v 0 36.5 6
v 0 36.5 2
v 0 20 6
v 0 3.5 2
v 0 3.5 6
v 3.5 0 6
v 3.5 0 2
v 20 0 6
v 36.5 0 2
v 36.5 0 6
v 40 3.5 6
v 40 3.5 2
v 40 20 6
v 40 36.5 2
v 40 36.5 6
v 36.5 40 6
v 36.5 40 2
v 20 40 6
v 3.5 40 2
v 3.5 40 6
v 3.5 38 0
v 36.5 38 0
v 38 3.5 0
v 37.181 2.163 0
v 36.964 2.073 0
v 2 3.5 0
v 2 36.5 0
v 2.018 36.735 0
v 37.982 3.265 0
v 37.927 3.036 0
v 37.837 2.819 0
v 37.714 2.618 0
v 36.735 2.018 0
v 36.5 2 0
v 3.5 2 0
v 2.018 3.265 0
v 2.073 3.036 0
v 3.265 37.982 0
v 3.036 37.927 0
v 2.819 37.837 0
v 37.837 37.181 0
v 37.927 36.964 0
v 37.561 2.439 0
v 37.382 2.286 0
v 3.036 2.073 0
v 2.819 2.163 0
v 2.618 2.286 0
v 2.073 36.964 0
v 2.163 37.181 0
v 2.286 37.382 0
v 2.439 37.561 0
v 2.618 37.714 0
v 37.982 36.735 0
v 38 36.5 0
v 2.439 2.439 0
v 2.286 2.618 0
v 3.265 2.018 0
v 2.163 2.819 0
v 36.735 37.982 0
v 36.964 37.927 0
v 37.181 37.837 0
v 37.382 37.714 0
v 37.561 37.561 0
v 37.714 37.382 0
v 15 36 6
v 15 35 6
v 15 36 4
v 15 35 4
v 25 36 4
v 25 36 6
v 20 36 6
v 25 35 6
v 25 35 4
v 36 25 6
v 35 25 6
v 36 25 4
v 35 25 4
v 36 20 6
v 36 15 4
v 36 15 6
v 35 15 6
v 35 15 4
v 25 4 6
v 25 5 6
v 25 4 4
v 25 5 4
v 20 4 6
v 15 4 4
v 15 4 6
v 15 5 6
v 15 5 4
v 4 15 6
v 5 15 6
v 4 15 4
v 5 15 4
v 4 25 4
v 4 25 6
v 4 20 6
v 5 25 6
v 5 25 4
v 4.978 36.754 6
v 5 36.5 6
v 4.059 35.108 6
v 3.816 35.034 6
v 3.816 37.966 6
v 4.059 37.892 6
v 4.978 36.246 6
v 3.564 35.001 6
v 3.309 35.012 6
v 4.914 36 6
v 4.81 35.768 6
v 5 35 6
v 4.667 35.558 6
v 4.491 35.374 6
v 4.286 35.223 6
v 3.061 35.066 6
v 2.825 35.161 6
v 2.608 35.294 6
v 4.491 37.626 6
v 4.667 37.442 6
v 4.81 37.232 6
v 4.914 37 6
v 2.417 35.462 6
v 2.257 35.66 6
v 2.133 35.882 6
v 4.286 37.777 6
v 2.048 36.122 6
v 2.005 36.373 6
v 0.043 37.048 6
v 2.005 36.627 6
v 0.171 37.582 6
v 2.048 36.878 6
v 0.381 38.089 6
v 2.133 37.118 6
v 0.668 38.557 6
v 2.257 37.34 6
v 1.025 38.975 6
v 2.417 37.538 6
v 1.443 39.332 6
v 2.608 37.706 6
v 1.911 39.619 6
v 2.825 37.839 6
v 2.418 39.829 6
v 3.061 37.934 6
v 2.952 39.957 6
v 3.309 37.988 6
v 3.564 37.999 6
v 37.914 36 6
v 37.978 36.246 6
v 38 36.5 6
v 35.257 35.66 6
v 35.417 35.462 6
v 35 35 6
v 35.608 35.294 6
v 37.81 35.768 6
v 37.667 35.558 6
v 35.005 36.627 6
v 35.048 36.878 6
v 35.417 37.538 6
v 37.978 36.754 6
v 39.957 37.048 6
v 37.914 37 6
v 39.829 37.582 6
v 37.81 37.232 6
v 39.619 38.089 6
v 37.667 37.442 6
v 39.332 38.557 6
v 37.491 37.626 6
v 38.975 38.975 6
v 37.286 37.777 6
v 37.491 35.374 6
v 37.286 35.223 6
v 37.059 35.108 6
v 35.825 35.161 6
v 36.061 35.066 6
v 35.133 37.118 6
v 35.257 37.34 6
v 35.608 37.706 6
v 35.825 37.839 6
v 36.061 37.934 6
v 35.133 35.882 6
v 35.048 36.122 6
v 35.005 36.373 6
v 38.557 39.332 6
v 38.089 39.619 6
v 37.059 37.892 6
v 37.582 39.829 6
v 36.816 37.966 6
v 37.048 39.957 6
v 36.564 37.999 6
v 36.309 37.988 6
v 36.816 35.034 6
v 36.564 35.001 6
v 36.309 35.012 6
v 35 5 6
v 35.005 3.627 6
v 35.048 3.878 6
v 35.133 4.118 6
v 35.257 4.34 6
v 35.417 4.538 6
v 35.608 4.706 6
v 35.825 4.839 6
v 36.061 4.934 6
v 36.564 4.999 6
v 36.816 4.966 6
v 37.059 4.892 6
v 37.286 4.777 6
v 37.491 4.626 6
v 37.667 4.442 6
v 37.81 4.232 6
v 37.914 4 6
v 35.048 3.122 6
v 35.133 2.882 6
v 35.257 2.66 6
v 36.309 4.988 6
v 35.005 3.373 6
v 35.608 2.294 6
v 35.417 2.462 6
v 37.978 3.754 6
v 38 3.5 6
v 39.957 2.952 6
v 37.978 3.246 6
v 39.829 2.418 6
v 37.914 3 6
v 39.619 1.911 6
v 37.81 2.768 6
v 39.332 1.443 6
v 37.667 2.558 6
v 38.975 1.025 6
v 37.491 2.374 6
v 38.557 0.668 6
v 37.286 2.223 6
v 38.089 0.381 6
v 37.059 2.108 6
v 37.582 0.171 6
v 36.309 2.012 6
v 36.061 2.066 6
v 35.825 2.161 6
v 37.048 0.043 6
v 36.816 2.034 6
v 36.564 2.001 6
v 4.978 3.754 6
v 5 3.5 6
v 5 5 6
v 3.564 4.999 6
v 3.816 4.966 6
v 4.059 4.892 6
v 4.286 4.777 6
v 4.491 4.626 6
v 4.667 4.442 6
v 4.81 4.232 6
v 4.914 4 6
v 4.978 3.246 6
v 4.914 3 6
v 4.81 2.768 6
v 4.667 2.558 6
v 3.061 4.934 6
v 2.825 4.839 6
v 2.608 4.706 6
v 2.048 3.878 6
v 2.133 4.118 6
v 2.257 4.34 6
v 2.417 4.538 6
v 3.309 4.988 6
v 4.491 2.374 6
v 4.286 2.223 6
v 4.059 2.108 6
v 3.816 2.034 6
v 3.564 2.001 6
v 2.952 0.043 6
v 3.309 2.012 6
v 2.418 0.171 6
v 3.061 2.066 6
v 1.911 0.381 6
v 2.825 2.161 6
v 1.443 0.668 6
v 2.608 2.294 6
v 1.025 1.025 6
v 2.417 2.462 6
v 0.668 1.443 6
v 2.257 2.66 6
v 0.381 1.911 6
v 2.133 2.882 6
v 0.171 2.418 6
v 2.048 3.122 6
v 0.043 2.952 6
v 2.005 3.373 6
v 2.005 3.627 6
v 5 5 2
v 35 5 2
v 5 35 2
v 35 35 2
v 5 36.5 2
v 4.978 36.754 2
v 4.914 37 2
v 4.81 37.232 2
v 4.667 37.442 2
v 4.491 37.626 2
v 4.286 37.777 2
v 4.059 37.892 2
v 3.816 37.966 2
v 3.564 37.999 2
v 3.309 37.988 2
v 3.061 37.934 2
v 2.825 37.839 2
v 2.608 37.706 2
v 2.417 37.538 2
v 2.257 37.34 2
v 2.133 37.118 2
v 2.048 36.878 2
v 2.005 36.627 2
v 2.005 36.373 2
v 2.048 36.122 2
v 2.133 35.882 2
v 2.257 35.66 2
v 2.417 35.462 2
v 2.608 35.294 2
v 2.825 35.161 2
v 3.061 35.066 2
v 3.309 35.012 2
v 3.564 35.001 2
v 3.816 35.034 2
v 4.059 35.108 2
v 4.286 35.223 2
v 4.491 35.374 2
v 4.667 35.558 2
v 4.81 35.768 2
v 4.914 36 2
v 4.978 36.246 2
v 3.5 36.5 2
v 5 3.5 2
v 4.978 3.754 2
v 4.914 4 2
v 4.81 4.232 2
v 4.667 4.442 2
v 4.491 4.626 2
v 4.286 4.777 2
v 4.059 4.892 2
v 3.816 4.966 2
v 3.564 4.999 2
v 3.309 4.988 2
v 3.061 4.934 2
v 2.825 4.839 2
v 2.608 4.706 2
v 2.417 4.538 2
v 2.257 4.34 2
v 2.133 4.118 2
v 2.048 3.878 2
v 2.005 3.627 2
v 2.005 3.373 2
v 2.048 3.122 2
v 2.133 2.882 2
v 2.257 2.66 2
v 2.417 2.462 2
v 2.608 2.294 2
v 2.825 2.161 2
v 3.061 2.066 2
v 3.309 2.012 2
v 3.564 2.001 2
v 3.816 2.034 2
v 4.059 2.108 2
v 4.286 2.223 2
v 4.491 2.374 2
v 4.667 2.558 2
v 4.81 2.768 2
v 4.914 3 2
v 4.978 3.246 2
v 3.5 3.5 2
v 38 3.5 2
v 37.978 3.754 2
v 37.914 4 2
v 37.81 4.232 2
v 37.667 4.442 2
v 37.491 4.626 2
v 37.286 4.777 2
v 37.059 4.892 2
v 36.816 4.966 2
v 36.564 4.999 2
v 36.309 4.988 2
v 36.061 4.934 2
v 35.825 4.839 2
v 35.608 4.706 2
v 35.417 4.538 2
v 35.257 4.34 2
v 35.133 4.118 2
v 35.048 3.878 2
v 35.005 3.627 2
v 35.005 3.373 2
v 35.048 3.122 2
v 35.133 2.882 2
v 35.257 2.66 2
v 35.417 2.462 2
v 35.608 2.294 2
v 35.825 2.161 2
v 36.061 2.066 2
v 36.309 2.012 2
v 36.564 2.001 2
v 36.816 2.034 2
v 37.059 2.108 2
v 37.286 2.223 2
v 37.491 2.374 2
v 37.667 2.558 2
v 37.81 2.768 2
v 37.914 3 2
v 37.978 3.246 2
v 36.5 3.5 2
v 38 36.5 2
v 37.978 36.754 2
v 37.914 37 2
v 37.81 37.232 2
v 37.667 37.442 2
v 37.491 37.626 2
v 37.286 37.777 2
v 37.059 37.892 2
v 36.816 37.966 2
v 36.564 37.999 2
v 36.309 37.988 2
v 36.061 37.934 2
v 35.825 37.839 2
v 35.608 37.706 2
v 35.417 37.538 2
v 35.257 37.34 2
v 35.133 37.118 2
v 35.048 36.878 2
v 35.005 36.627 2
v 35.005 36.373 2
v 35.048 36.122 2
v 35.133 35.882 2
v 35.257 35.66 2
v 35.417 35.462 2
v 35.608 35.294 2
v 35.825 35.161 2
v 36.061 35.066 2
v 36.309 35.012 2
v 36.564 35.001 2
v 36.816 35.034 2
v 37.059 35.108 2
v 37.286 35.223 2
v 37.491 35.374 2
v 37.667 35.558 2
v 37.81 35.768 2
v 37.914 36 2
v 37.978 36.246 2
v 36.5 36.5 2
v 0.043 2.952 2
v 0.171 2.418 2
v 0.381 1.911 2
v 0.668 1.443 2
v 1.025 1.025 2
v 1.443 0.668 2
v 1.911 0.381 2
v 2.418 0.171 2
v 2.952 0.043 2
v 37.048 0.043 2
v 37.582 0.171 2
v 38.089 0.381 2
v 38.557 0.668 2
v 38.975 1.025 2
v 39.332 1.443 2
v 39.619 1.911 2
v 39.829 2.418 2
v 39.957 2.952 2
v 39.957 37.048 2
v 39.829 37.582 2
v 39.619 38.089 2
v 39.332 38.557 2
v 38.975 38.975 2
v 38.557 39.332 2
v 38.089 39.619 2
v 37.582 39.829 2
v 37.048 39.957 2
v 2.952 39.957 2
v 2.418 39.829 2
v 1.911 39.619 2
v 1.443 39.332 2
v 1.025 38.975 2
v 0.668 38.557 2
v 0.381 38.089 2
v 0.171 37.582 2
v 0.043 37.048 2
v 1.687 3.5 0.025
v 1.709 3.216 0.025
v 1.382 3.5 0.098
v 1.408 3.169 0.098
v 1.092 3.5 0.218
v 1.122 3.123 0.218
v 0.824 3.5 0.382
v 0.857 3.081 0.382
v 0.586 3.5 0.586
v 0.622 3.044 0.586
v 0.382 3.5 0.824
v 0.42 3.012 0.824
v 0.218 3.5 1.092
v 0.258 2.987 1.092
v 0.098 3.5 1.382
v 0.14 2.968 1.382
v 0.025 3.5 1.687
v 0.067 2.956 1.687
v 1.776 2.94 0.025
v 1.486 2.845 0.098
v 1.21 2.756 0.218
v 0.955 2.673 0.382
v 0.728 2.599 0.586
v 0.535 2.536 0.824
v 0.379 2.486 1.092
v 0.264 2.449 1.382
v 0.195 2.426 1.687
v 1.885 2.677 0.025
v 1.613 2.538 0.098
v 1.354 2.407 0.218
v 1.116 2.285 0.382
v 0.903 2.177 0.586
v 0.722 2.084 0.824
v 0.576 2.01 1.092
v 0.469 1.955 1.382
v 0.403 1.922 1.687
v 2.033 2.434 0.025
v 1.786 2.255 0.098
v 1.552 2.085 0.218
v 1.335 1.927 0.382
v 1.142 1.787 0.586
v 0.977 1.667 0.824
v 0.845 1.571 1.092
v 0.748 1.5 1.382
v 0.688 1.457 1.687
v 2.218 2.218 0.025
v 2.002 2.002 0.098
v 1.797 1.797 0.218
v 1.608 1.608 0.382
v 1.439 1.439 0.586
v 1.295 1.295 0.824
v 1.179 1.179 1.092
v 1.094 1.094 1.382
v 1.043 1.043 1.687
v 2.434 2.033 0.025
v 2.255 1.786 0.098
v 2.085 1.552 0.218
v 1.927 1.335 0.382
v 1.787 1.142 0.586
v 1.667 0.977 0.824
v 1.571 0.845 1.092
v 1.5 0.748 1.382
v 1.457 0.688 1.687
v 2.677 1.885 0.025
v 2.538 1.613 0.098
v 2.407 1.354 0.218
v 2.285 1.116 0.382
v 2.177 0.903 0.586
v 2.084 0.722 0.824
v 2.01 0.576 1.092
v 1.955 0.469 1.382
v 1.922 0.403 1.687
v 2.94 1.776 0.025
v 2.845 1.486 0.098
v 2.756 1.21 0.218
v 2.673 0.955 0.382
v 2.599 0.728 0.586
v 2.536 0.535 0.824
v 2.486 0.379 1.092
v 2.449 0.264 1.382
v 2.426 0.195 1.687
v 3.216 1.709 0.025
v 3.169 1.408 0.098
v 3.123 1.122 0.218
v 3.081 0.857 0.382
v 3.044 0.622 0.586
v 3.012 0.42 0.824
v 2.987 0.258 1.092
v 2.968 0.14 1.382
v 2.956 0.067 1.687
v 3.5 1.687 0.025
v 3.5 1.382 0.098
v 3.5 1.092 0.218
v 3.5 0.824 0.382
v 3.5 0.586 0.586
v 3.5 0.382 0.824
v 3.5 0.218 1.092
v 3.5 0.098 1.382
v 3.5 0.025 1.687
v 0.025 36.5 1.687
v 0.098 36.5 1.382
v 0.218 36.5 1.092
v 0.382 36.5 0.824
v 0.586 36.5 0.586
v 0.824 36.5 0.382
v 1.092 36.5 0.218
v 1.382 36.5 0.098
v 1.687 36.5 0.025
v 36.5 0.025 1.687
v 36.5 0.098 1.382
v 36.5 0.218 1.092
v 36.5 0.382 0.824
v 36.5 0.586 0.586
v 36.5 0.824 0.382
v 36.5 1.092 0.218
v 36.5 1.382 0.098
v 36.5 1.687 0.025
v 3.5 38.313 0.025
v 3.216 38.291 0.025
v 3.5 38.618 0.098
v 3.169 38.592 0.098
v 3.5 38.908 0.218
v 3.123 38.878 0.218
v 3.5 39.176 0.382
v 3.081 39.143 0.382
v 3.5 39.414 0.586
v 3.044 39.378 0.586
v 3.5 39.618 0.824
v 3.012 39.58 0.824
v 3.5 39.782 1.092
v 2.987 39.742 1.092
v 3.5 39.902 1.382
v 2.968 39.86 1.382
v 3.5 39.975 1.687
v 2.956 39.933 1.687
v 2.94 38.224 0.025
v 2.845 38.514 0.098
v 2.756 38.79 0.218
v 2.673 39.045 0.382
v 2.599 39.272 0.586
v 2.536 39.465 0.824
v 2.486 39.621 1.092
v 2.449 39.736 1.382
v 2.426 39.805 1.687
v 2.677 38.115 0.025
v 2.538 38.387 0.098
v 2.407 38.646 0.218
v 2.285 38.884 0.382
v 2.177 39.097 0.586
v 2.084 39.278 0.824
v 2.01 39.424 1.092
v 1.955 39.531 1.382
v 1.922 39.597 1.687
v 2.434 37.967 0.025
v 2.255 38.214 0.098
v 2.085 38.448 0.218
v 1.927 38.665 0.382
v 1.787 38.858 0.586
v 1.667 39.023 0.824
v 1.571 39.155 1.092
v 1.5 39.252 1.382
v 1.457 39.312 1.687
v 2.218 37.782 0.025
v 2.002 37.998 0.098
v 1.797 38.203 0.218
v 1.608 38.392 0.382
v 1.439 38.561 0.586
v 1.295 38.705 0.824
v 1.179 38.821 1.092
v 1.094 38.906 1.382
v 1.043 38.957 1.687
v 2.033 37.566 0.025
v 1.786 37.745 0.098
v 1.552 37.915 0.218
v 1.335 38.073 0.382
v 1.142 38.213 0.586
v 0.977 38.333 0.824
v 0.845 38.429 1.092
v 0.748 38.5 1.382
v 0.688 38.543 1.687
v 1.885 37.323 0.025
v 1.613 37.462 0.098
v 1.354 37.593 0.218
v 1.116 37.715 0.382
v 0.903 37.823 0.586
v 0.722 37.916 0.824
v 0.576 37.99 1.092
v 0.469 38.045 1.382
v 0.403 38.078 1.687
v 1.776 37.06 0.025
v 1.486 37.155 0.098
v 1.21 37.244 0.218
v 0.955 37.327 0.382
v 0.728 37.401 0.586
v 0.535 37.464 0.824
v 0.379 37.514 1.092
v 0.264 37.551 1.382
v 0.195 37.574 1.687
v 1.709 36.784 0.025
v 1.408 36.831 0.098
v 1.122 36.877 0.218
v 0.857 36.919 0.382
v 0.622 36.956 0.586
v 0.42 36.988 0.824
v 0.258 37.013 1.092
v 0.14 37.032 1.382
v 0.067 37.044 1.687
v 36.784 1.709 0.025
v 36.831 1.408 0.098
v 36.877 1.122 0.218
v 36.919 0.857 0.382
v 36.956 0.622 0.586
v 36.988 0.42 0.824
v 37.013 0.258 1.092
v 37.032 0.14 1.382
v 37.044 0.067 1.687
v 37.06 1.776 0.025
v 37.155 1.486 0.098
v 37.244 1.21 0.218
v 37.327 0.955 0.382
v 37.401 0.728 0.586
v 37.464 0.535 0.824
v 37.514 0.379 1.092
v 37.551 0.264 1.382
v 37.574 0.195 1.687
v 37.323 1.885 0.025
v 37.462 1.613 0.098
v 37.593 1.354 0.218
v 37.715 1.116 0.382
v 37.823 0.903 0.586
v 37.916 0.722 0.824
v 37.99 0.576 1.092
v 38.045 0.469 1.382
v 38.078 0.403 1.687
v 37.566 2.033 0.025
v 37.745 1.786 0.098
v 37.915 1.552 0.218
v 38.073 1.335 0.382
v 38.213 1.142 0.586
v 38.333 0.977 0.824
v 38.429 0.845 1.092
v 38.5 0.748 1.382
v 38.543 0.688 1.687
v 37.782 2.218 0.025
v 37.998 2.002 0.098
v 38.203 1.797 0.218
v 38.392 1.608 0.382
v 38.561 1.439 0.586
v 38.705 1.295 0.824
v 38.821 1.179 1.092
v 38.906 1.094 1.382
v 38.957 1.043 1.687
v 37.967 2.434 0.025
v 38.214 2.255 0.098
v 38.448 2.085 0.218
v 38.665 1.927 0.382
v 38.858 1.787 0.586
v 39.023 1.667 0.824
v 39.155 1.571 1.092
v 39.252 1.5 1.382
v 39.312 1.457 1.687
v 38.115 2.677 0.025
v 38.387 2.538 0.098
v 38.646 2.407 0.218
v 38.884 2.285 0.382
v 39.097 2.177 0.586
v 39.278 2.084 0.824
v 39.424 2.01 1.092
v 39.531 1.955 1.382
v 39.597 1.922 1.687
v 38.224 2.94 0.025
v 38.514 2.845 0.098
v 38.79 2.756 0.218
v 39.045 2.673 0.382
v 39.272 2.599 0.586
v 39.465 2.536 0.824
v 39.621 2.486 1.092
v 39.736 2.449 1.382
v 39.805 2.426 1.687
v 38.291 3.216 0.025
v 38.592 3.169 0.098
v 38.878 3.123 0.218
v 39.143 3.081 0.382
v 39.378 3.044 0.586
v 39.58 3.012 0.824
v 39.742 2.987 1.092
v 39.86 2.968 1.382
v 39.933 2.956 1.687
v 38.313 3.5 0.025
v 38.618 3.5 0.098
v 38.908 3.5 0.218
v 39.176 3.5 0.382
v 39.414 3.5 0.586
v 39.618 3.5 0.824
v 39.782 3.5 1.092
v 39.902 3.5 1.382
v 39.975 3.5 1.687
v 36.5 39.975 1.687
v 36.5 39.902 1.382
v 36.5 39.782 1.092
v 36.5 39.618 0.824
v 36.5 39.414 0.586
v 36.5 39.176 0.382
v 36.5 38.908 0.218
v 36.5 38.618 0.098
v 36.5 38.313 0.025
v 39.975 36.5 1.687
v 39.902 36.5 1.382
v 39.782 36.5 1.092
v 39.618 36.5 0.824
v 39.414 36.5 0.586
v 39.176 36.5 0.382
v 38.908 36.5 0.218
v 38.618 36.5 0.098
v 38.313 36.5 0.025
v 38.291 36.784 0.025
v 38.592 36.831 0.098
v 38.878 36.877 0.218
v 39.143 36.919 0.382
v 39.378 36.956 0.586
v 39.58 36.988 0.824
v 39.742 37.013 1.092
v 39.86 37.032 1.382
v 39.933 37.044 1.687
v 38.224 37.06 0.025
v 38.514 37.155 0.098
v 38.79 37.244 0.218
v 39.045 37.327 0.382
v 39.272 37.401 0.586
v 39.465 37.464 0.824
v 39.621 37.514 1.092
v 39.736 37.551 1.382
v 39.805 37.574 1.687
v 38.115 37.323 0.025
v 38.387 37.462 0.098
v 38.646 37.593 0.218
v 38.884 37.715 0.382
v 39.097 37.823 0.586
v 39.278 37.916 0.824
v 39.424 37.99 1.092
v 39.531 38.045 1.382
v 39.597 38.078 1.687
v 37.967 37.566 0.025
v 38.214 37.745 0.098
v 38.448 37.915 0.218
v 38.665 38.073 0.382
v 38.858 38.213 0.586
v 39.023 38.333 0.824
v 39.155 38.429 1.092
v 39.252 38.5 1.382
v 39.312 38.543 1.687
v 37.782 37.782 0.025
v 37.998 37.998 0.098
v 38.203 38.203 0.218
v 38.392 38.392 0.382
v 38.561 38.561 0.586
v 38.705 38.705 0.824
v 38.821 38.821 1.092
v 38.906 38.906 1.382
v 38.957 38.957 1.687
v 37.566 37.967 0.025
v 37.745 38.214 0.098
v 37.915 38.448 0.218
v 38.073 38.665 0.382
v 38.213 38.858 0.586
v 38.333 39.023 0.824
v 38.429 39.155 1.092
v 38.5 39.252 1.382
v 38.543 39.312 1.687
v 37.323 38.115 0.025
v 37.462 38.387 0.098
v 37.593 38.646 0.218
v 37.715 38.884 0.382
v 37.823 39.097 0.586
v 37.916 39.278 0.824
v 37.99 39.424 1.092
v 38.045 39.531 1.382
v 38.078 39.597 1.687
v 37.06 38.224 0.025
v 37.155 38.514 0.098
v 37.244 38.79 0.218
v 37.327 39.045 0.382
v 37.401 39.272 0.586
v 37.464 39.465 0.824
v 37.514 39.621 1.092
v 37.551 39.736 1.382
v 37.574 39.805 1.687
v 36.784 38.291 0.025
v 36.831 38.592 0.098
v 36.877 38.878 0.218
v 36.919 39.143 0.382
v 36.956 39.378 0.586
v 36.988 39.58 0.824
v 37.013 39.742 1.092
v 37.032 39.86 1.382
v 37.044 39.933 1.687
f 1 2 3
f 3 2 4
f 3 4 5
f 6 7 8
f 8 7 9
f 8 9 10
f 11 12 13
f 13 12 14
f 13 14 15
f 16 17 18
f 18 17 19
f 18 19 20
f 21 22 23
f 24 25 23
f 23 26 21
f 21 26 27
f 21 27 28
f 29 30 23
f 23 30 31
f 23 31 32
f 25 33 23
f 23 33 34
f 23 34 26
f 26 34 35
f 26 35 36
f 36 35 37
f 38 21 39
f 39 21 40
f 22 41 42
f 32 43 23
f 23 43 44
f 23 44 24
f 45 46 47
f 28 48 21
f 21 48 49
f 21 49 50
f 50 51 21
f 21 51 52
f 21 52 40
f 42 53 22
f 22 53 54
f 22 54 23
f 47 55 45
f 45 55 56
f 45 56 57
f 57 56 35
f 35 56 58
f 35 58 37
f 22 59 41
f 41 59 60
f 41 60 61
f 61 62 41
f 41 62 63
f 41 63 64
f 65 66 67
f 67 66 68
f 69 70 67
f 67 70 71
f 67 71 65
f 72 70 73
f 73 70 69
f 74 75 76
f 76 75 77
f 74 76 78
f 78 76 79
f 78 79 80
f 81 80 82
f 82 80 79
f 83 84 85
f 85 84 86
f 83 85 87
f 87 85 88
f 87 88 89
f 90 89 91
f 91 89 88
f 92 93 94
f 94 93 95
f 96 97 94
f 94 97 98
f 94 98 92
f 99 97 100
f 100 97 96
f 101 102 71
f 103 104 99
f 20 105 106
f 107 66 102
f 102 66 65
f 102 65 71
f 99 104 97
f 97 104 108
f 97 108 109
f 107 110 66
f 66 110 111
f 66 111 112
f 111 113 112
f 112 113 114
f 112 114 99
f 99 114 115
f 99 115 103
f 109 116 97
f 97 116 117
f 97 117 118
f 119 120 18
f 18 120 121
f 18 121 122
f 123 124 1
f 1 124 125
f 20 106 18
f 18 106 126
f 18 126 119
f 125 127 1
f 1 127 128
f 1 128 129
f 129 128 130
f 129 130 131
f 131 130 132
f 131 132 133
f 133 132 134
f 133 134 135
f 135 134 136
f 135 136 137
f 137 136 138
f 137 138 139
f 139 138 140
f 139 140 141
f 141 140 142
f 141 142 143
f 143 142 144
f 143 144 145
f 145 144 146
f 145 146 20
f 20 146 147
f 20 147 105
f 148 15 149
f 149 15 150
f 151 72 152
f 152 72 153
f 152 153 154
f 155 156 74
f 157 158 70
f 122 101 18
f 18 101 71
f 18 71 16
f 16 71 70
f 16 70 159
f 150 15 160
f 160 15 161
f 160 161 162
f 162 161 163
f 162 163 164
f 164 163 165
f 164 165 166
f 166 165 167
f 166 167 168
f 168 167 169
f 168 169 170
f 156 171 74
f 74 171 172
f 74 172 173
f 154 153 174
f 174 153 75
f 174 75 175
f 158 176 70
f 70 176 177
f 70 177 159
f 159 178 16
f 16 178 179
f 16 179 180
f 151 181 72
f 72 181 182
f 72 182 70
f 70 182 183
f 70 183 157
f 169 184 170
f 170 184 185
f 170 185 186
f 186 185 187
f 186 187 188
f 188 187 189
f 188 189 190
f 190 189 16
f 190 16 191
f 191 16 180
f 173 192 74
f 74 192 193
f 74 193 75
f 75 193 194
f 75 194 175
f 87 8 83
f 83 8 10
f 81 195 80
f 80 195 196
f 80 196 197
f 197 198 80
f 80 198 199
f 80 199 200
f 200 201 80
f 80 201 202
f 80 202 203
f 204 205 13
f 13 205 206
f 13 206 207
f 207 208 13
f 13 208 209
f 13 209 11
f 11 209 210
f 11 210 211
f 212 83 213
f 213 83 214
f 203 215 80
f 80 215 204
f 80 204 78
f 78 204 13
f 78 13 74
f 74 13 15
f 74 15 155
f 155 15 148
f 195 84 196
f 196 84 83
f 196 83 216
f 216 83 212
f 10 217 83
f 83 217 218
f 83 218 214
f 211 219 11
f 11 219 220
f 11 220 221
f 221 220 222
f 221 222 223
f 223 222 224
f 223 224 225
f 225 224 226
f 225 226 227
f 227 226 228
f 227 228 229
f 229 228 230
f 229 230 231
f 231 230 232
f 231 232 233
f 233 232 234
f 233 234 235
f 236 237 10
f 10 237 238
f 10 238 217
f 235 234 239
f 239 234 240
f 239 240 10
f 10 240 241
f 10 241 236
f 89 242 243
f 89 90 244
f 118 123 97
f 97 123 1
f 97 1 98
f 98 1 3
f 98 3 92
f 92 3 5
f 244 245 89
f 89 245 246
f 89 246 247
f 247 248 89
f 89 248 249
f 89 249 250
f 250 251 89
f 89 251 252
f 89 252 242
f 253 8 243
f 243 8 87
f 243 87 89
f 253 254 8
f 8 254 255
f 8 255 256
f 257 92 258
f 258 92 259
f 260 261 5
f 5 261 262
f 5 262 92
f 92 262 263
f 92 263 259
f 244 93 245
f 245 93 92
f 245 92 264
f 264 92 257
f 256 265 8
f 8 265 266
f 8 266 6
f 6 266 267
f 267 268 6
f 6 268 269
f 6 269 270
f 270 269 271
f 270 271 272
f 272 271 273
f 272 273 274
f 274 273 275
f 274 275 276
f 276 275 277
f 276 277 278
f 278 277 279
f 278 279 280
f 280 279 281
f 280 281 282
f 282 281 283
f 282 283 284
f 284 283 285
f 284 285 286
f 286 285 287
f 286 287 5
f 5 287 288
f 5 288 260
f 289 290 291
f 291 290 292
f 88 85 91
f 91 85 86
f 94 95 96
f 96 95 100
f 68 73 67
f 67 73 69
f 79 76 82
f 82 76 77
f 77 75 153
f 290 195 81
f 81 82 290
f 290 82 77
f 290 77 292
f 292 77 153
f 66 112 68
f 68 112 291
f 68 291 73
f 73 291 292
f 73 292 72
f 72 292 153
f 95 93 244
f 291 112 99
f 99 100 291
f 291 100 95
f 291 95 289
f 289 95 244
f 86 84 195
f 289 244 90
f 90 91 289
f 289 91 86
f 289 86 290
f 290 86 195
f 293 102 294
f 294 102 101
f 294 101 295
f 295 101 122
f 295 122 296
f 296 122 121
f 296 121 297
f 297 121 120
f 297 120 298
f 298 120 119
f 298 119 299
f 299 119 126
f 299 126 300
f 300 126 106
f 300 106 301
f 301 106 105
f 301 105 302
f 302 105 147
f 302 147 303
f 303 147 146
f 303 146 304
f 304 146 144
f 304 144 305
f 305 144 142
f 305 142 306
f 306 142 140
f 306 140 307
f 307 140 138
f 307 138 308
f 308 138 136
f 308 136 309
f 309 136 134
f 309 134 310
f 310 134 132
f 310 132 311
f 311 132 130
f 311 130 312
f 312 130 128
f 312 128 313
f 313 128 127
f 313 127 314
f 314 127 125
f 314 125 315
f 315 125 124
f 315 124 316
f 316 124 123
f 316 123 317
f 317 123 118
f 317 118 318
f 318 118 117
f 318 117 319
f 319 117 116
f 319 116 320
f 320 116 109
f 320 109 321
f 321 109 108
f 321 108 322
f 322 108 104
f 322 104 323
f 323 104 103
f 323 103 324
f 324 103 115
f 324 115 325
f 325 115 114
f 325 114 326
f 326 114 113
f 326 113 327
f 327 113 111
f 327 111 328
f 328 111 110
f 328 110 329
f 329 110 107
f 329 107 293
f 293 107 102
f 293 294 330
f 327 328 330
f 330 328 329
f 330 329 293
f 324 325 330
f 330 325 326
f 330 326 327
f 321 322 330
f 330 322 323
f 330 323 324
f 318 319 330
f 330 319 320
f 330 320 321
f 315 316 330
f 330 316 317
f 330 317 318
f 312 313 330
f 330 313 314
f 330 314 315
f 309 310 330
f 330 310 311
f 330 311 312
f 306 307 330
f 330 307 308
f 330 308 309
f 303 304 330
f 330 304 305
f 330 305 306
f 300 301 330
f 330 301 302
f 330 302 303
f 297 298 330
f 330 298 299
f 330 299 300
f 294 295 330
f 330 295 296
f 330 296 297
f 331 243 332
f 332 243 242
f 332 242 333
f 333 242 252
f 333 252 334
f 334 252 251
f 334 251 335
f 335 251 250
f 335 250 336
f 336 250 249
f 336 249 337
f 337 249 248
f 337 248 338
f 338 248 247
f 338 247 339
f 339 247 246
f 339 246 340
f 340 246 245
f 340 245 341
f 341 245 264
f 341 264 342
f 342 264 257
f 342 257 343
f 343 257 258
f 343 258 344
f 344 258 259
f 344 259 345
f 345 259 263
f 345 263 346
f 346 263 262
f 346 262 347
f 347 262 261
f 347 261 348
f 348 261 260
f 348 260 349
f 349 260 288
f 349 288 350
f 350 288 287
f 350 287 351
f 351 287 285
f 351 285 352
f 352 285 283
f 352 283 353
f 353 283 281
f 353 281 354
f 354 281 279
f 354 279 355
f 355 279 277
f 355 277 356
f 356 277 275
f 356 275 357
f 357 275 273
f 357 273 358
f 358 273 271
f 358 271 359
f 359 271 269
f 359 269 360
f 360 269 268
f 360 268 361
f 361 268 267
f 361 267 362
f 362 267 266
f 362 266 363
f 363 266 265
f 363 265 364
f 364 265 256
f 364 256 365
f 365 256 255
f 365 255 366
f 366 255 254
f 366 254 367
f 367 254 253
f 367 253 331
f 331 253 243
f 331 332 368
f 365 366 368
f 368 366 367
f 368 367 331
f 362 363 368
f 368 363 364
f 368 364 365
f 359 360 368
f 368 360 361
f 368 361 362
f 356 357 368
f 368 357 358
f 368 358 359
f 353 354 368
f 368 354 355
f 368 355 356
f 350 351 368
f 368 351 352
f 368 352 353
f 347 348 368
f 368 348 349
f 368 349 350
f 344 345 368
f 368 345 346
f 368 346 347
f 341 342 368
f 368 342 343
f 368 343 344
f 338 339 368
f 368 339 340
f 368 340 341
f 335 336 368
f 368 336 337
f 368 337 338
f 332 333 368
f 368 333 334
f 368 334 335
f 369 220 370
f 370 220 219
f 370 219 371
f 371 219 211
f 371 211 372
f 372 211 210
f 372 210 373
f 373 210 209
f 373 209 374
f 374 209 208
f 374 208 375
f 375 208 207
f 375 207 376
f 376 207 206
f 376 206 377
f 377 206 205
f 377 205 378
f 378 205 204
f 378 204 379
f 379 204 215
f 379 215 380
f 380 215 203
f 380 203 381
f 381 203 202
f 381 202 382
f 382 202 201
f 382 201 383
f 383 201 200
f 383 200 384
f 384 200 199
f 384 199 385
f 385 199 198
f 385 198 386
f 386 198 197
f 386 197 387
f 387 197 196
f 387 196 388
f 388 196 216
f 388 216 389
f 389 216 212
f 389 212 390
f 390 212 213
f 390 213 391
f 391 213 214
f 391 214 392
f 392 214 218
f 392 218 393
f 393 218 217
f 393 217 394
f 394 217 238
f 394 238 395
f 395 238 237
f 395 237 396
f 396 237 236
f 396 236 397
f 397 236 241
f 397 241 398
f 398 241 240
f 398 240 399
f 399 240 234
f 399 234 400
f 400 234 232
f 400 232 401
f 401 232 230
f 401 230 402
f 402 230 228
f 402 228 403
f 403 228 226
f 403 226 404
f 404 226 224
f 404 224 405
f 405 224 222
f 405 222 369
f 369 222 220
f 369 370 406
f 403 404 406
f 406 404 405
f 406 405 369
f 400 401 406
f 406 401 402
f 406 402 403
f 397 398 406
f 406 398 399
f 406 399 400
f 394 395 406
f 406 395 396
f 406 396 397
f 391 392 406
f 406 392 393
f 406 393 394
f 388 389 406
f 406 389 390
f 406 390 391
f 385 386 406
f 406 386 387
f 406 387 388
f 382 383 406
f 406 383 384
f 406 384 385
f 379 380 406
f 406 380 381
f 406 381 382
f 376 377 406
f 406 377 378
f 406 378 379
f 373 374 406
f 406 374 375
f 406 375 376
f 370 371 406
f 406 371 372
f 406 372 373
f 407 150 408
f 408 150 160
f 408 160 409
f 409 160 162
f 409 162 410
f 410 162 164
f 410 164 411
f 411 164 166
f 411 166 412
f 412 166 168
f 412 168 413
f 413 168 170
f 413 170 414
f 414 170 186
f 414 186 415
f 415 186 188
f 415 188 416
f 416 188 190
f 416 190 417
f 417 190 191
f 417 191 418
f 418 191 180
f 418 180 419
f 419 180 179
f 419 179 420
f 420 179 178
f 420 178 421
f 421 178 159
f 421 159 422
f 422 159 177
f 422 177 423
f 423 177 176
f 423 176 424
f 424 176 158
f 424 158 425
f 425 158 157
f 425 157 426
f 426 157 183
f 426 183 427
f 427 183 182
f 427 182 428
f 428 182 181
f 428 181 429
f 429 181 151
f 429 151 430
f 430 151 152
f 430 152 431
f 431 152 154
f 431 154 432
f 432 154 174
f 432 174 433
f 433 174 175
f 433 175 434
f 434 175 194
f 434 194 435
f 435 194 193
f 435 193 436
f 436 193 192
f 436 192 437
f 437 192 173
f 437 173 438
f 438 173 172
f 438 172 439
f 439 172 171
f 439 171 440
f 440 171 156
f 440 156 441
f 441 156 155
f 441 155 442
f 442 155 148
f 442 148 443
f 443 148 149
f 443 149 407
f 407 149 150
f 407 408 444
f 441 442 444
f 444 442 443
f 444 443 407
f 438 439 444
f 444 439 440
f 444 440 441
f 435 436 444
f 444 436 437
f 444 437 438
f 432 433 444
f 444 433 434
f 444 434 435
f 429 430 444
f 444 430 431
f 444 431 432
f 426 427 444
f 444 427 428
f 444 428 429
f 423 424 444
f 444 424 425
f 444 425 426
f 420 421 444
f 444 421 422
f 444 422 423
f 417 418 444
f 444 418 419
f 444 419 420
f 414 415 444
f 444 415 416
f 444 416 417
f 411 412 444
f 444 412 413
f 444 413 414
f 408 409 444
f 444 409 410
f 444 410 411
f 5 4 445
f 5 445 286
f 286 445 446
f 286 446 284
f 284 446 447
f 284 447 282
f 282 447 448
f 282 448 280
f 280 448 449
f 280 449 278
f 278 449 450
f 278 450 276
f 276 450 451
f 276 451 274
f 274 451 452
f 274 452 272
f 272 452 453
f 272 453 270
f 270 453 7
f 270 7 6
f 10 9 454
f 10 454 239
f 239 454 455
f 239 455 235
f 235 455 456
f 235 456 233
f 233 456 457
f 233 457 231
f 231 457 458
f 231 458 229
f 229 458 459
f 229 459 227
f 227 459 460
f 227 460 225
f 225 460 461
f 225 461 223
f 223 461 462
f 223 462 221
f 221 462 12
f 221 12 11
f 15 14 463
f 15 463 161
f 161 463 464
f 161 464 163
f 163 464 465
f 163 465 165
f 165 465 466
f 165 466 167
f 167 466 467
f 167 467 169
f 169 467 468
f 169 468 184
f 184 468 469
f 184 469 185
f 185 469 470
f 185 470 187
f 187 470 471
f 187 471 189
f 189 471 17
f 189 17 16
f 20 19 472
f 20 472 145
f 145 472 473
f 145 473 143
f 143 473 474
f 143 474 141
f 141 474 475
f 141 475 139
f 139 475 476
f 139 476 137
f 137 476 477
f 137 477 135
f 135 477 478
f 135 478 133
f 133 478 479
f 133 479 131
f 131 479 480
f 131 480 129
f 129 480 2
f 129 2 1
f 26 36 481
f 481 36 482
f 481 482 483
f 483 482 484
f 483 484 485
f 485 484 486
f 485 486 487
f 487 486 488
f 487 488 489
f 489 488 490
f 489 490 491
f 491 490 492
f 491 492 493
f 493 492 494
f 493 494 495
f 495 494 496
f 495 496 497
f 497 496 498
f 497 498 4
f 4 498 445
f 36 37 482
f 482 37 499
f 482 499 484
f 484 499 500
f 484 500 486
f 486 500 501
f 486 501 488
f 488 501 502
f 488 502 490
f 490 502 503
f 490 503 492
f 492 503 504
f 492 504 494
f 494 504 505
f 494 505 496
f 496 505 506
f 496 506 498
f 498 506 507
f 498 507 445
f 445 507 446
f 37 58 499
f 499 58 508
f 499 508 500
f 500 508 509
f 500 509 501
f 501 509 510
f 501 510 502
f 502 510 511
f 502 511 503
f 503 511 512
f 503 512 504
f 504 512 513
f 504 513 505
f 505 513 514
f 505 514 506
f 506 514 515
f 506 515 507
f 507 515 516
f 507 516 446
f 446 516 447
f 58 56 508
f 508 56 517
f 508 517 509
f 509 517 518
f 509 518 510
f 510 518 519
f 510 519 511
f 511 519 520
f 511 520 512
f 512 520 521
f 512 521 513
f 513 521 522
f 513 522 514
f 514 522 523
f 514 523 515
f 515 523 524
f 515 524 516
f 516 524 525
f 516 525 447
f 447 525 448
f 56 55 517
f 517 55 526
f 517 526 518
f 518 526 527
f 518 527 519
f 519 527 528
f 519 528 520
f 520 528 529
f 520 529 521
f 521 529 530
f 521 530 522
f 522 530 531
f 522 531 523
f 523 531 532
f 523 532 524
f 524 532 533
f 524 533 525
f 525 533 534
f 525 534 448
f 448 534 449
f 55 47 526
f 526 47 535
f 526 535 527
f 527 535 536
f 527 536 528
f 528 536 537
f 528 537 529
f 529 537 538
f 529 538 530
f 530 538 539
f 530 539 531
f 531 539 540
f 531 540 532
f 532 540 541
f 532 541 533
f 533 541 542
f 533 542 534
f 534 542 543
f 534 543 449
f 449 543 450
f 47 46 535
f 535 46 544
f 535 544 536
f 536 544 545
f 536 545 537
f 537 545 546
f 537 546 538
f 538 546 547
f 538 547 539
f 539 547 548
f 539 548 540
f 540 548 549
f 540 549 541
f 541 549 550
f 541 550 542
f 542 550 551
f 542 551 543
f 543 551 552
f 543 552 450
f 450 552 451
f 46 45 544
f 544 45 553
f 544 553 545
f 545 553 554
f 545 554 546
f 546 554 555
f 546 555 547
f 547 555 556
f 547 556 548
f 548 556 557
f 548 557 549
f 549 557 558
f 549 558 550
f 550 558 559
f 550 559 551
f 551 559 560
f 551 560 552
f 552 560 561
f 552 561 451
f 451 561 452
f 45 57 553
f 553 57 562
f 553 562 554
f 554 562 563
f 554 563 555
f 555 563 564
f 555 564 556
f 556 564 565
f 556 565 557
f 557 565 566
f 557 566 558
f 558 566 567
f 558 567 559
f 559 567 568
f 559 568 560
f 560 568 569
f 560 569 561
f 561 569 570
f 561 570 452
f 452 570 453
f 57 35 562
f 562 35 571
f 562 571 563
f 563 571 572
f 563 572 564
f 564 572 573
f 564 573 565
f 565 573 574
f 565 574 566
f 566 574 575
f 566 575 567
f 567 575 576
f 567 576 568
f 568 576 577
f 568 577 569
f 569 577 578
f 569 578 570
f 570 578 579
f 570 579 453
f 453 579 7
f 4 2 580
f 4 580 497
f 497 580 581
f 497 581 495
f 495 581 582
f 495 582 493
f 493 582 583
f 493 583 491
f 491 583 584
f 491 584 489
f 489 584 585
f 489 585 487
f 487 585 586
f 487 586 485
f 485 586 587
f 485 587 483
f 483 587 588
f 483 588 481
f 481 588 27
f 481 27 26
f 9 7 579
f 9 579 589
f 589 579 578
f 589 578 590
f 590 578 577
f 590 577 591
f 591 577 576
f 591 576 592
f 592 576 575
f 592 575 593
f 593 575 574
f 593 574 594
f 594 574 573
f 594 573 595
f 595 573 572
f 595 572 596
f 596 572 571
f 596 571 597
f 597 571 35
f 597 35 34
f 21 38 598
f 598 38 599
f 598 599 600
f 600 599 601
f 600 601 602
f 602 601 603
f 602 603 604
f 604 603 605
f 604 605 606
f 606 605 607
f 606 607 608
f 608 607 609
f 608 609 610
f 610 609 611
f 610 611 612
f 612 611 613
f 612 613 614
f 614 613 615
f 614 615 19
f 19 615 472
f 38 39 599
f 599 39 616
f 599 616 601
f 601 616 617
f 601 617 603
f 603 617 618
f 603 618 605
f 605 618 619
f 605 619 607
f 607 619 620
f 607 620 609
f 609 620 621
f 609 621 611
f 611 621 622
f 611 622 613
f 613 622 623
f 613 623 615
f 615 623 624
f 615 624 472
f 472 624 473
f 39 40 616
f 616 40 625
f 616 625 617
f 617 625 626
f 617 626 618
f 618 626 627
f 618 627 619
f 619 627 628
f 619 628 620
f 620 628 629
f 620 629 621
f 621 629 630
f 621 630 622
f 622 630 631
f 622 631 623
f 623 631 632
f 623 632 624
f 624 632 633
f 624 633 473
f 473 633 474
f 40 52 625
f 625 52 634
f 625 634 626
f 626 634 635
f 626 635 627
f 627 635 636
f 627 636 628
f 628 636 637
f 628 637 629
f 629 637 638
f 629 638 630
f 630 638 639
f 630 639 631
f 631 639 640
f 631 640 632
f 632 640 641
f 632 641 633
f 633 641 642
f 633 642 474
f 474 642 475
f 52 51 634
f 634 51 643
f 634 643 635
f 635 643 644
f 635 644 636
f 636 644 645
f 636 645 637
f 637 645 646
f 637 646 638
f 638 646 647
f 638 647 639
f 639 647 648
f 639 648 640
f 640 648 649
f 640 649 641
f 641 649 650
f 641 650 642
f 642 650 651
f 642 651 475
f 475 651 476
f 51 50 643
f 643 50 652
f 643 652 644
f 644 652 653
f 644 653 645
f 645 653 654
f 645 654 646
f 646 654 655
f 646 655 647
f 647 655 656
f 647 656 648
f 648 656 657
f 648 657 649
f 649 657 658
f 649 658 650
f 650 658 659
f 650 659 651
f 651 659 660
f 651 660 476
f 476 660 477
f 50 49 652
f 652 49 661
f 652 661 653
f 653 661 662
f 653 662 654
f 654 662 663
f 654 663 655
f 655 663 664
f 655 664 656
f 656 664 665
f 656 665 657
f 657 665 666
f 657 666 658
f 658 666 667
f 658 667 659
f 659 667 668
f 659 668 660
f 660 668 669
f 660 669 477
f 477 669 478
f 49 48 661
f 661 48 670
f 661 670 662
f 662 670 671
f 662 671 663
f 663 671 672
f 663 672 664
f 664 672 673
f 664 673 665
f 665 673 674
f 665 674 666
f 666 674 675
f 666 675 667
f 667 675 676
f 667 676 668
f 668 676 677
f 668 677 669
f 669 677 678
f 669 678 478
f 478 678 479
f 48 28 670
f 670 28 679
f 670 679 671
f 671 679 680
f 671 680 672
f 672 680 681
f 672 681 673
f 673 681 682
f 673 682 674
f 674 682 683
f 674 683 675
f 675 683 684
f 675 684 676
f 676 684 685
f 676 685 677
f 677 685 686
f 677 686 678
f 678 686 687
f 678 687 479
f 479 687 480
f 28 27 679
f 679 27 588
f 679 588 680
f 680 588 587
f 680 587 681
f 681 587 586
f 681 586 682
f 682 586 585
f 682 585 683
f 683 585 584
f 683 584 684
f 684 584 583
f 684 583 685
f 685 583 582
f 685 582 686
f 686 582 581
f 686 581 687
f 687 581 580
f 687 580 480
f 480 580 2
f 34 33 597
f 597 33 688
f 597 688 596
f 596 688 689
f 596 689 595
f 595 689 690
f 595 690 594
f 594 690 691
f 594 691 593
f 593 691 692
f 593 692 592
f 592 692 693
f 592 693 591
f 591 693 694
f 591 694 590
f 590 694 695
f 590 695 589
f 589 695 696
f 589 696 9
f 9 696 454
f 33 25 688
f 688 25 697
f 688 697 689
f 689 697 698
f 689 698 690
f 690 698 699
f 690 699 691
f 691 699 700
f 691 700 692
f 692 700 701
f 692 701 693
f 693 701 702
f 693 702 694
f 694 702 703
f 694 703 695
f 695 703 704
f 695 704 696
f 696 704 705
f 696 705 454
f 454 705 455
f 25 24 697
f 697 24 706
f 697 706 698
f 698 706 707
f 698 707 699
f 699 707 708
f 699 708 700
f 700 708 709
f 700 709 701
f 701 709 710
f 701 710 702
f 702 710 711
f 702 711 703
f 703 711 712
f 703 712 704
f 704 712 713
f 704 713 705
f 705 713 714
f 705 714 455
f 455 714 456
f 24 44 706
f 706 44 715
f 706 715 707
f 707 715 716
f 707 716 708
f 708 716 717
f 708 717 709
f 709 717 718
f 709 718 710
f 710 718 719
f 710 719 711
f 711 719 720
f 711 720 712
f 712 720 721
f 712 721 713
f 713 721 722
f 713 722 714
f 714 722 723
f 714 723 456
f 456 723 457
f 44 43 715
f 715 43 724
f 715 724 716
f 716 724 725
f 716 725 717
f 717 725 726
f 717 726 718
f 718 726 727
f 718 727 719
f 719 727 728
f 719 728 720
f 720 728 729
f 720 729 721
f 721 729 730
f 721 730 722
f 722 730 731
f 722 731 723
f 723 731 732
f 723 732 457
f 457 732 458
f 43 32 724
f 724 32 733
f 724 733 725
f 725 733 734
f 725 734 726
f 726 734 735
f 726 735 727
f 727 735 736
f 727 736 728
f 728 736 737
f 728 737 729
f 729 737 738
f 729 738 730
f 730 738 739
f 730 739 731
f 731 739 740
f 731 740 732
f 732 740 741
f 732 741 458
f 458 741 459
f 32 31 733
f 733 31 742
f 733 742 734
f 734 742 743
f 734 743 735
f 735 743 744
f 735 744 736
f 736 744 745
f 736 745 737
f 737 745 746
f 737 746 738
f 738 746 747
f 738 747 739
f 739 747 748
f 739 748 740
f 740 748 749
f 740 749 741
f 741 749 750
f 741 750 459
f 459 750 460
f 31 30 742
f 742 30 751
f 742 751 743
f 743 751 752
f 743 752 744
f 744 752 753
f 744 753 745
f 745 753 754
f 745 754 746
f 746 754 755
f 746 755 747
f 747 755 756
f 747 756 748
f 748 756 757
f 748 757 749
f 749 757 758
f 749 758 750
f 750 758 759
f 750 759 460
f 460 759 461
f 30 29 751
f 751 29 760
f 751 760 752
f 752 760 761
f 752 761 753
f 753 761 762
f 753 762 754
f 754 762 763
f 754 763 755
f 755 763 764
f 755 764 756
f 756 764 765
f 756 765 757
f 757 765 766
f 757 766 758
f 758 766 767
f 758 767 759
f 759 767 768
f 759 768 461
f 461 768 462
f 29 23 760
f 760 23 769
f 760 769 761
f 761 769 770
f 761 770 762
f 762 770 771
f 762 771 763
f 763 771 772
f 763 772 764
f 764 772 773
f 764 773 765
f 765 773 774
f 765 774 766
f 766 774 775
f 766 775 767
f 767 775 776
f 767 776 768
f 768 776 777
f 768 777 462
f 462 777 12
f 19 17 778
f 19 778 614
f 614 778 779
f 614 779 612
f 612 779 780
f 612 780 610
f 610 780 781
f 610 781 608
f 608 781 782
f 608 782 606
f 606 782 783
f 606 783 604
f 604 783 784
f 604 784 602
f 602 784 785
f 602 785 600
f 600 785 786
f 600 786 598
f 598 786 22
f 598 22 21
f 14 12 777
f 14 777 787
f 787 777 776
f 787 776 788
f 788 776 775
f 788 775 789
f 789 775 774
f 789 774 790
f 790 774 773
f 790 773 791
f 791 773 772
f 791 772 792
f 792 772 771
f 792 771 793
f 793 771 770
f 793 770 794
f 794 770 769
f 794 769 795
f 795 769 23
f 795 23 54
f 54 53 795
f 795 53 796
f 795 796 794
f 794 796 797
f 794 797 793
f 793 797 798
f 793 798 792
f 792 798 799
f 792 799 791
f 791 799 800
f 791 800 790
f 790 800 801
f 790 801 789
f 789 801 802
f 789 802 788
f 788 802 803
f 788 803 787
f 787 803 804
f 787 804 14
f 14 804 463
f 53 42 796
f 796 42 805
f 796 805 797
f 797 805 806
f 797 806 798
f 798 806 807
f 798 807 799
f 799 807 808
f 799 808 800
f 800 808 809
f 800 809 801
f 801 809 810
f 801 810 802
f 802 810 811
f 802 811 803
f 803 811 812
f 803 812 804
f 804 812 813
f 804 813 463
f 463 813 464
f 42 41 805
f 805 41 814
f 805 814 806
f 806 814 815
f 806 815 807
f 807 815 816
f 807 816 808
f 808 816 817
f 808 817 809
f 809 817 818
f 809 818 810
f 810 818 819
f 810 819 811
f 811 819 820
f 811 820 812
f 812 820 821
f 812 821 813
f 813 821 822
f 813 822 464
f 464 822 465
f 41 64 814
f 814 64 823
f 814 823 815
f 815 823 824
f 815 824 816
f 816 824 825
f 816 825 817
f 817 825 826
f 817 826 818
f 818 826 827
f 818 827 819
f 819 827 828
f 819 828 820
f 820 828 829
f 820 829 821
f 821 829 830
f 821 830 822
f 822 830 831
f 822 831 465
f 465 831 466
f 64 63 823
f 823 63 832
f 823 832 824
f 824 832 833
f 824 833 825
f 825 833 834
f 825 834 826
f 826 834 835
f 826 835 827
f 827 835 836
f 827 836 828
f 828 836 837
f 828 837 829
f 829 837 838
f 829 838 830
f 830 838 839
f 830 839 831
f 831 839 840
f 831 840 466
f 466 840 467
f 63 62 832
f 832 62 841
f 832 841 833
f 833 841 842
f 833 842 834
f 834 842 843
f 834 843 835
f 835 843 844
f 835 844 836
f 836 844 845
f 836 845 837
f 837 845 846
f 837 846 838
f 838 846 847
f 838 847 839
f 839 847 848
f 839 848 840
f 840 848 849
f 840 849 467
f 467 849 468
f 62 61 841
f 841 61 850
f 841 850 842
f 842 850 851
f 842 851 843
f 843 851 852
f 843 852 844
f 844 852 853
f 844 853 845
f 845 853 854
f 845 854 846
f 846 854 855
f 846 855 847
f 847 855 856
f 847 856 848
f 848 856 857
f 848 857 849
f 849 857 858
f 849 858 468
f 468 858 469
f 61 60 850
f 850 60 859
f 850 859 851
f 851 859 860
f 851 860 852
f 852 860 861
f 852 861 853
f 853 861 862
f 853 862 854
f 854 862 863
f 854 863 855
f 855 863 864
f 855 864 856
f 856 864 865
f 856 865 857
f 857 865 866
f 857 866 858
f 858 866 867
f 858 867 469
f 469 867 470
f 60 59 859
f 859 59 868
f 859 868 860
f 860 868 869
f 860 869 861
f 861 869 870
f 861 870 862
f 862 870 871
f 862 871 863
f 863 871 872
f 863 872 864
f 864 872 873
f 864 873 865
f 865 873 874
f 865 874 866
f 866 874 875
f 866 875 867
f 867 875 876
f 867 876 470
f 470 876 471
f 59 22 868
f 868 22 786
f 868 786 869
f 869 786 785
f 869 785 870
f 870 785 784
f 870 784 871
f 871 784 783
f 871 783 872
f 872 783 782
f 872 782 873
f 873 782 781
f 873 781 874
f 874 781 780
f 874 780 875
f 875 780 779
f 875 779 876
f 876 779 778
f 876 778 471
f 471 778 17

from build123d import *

# Parameters (mm, degrees)
SKETCH1_W           = 40
SKETCH1_H           = 40
BOSS_EXTRUDE1_DEPTH = 2
SKETCH2_W           = 40
SKETCH2_H           = 40
SKETCH2_W_2         = 30
SKETCH2_H_2         = 30
BOSS_EXTRUDE2_DEPTH = 2
SKETCH3_W           = 40
SKETCH3_H           = 40
SKETCH3_W_2         = 32
SKETCH3_H_2         = 32
BOSS_EXTRUDE3_DEPTH = 2
SKETCH4_R           = 1.5
CUT_EXTRUDE1_DEPTH  = 4
FILLET1_R           = 3.5
FILLET2_R           = 2


with BuildPart() as part:
    # Sketch1 → Boss-Extrude1 (new body)
    with BuildSketch(Plane.XY):
        with Locations((20, 20)):
            Rectangle(SKETCH1_W, SKETCH1_H)
    extrude(amount=BOSS_EXTRUDE1_DEPTH)

    # Sketch2 → Boss-Extrude2 (add)
    with BuildSketch(Plane.XY.offset(2)):
        with Locations((20, 20)):
            Rectangle(SKETCH2_W, SKETCH2_H)
        with Locations((20, 20)):
            Rectangle(SKETCH2_W_2, SKETCH2_H_2, mode=Mode.SUBTRACT)
    extrude(amount=BOSS_EXTRUDE2_DEPTH)

    # Sketch3 → Boss-Extrude3 (add)
    # profile 1 of 5: a face of its own
    with BuildSketch(Plane.XY.offset(4)):
        with Locations((20, 20)):
            Rectangle(SKETCH3_W, SKETCH3_H)
        with Locations((20, 20)):
            Rectangle(SKETCH3_W_2, SKETCH3_H_2, mode=Mode.SUBTRACT)
    # profile 2 of 5: a face of its own
    with BuildSketch(Plane.XY.offset(4)):
        Polygon((15, 36), (4, 36), (4, 25), (5, 25), (5, 35), (15, 35), align=None)
    # profile 3 of 5: a face of its own
    with BuildSketch(Plane.XY.offset(4)):
        Polygon((36, 36), (25, 36), (25, 35), (35, 35), (35, 25), (36, 25), align=None)
    # profile 4 of 5: a face of its own
    with BuildSketch(Plane.XY.offset(4)):
        Polygon((36, 4), (36, 15), (35, 15), (35, 5), (25, 5), (25, 4), align=None)
    # profile 5 of 5: a face of its own
    with BuildSketch(Plane.XY.offset(4)):
        Polygon((5, 15), (4, 15), (4, 4), (15, 4), (15, 5), (5, 5), align=None)
    extrude(amount=BOSS_EXTRUDE3_DEPTH)

    # Sketch4 → Cut-Extrude1 (cut)
    with BuildSketch(Plane.XY.offset(6)):
        with Locations((3.5, 36.5)):
            Circle(SKETCH4_R)
        with Locations((36.5, 36.5)):
            Circle(SKETCH4_R)
        with Locations((36.5, 3.5)):
            Circle(SKETCH4_R)
        with Locations((3.5, 3.5)):
            Circle(SKETCH4_R)
    extrude(amount=-CUT_EXTRUDE1_DEPTH, mode=Mode.SUBTRACT)

    # Fillet1
    fillet1_edges = [part.edges().sort_by_distance(p)[0] for p in [
        (0, 40, 3),
        (40, 40, 3),
        (40, 0, 3),
        (0, 0, 3),
    ]]
    fillet(fillet1_edges, radius=FILLET1_R)

    # Fillet2
    fillet2_edges = [part.edges().sort_by_distance(p)[0] for p in [
        (20, 0, 0),
        (0, 20, 0),
        (20, 40, 0),
        (40, 20, 0),
        (1.025126266, 38.974873734, 0),
        (38.974873734, 38.974873734, 0),
        (38.974873734, 1.025126266, 0),
        (1.025126266, 1.025126266, 0),
    ]]
    fillet(fillet2_edges, radius=FILLET2_R)


solid = part.part
